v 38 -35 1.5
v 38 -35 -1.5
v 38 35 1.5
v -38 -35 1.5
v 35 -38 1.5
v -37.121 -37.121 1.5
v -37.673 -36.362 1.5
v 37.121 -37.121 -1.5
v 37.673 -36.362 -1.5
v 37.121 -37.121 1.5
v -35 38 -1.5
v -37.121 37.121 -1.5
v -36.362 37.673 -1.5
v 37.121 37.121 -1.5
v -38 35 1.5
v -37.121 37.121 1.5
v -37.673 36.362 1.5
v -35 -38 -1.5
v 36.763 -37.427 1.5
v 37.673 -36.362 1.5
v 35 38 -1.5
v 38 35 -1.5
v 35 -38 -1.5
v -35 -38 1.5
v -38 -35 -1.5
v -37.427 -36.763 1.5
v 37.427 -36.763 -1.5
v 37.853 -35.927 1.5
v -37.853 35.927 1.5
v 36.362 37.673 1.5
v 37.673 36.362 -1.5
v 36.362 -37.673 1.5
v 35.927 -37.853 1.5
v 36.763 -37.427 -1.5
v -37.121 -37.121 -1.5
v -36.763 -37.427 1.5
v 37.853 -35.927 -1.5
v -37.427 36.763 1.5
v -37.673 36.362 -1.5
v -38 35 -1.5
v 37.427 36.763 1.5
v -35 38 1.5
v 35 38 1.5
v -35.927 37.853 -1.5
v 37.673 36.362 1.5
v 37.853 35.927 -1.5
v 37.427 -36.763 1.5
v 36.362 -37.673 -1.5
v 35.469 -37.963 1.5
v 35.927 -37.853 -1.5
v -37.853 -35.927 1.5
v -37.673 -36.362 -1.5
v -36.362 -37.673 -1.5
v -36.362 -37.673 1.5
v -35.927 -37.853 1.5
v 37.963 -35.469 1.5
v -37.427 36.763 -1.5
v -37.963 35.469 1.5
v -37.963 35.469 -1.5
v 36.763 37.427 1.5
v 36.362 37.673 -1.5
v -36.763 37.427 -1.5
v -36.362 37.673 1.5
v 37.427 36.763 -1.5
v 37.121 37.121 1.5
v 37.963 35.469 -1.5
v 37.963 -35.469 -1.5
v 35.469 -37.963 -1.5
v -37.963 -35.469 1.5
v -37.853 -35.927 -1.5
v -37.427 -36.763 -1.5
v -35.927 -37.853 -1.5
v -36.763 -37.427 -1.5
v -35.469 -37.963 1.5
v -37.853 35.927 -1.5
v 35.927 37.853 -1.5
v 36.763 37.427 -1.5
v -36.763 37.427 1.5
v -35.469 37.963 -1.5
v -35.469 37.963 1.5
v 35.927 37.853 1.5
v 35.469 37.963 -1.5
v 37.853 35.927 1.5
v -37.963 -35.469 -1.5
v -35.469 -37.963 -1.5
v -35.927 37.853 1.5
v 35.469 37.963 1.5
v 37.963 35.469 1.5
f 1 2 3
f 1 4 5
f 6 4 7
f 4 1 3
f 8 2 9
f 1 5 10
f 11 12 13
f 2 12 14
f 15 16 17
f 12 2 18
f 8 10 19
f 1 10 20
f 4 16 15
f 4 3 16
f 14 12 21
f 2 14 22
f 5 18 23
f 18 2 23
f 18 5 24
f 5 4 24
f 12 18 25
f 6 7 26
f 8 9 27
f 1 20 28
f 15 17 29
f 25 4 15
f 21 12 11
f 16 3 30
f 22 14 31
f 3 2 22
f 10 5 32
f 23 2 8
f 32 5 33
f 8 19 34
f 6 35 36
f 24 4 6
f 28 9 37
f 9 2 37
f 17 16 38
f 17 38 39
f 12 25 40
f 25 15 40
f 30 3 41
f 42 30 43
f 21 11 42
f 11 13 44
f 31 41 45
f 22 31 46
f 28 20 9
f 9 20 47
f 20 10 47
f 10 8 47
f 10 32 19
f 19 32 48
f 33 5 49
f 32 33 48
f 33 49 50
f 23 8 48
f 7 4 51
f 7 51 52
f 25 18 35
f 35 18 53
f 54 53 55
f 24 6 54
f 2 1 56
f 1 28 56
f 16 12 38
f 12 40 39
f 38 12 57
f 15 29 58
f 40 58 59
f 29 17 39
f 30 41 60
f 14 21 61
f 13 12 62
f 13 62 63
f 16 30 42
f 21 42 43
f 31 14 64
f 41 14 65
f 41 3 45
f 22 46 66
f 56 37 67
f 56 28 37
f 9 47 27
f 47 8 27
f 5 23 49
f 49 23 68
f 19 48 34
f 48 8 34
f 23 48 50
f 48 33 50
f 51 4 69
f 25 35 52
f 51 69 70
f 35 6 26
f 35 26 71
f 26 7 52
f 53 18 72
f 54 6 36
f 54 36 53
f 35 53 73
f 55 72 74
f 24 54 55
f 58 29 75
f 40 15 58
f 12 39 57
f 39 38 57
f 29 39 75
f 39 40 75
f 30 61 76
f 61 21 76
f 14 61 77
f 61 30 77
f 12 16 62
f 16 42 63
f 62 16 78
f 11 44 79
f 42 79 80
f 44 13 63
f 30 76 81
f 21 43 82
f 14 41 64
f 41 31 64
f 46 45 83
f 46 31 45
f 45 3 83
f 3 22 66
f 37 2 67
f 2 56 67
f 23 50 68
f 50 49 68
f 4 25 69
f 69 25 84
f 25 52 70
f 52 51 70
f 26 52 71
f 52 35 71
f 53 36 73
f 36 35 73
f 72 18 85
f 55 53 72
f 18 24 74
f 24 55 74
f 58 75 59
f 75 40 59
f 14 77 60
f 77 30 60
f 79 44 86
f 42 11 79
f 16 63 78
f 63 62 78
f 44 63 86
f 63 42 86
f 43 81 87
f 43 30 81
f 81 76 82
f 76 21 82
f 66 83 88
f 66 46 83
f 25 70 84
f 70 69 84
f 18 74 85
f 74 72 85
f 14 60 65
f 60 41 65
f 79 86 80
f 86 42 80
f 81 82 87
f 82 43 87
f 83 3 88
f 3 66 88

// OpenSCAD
minkowski () {
  cube ([70, 70, 2], center=true);
  cylinder ($fn=40, h=1, r=3, center=true);
}
